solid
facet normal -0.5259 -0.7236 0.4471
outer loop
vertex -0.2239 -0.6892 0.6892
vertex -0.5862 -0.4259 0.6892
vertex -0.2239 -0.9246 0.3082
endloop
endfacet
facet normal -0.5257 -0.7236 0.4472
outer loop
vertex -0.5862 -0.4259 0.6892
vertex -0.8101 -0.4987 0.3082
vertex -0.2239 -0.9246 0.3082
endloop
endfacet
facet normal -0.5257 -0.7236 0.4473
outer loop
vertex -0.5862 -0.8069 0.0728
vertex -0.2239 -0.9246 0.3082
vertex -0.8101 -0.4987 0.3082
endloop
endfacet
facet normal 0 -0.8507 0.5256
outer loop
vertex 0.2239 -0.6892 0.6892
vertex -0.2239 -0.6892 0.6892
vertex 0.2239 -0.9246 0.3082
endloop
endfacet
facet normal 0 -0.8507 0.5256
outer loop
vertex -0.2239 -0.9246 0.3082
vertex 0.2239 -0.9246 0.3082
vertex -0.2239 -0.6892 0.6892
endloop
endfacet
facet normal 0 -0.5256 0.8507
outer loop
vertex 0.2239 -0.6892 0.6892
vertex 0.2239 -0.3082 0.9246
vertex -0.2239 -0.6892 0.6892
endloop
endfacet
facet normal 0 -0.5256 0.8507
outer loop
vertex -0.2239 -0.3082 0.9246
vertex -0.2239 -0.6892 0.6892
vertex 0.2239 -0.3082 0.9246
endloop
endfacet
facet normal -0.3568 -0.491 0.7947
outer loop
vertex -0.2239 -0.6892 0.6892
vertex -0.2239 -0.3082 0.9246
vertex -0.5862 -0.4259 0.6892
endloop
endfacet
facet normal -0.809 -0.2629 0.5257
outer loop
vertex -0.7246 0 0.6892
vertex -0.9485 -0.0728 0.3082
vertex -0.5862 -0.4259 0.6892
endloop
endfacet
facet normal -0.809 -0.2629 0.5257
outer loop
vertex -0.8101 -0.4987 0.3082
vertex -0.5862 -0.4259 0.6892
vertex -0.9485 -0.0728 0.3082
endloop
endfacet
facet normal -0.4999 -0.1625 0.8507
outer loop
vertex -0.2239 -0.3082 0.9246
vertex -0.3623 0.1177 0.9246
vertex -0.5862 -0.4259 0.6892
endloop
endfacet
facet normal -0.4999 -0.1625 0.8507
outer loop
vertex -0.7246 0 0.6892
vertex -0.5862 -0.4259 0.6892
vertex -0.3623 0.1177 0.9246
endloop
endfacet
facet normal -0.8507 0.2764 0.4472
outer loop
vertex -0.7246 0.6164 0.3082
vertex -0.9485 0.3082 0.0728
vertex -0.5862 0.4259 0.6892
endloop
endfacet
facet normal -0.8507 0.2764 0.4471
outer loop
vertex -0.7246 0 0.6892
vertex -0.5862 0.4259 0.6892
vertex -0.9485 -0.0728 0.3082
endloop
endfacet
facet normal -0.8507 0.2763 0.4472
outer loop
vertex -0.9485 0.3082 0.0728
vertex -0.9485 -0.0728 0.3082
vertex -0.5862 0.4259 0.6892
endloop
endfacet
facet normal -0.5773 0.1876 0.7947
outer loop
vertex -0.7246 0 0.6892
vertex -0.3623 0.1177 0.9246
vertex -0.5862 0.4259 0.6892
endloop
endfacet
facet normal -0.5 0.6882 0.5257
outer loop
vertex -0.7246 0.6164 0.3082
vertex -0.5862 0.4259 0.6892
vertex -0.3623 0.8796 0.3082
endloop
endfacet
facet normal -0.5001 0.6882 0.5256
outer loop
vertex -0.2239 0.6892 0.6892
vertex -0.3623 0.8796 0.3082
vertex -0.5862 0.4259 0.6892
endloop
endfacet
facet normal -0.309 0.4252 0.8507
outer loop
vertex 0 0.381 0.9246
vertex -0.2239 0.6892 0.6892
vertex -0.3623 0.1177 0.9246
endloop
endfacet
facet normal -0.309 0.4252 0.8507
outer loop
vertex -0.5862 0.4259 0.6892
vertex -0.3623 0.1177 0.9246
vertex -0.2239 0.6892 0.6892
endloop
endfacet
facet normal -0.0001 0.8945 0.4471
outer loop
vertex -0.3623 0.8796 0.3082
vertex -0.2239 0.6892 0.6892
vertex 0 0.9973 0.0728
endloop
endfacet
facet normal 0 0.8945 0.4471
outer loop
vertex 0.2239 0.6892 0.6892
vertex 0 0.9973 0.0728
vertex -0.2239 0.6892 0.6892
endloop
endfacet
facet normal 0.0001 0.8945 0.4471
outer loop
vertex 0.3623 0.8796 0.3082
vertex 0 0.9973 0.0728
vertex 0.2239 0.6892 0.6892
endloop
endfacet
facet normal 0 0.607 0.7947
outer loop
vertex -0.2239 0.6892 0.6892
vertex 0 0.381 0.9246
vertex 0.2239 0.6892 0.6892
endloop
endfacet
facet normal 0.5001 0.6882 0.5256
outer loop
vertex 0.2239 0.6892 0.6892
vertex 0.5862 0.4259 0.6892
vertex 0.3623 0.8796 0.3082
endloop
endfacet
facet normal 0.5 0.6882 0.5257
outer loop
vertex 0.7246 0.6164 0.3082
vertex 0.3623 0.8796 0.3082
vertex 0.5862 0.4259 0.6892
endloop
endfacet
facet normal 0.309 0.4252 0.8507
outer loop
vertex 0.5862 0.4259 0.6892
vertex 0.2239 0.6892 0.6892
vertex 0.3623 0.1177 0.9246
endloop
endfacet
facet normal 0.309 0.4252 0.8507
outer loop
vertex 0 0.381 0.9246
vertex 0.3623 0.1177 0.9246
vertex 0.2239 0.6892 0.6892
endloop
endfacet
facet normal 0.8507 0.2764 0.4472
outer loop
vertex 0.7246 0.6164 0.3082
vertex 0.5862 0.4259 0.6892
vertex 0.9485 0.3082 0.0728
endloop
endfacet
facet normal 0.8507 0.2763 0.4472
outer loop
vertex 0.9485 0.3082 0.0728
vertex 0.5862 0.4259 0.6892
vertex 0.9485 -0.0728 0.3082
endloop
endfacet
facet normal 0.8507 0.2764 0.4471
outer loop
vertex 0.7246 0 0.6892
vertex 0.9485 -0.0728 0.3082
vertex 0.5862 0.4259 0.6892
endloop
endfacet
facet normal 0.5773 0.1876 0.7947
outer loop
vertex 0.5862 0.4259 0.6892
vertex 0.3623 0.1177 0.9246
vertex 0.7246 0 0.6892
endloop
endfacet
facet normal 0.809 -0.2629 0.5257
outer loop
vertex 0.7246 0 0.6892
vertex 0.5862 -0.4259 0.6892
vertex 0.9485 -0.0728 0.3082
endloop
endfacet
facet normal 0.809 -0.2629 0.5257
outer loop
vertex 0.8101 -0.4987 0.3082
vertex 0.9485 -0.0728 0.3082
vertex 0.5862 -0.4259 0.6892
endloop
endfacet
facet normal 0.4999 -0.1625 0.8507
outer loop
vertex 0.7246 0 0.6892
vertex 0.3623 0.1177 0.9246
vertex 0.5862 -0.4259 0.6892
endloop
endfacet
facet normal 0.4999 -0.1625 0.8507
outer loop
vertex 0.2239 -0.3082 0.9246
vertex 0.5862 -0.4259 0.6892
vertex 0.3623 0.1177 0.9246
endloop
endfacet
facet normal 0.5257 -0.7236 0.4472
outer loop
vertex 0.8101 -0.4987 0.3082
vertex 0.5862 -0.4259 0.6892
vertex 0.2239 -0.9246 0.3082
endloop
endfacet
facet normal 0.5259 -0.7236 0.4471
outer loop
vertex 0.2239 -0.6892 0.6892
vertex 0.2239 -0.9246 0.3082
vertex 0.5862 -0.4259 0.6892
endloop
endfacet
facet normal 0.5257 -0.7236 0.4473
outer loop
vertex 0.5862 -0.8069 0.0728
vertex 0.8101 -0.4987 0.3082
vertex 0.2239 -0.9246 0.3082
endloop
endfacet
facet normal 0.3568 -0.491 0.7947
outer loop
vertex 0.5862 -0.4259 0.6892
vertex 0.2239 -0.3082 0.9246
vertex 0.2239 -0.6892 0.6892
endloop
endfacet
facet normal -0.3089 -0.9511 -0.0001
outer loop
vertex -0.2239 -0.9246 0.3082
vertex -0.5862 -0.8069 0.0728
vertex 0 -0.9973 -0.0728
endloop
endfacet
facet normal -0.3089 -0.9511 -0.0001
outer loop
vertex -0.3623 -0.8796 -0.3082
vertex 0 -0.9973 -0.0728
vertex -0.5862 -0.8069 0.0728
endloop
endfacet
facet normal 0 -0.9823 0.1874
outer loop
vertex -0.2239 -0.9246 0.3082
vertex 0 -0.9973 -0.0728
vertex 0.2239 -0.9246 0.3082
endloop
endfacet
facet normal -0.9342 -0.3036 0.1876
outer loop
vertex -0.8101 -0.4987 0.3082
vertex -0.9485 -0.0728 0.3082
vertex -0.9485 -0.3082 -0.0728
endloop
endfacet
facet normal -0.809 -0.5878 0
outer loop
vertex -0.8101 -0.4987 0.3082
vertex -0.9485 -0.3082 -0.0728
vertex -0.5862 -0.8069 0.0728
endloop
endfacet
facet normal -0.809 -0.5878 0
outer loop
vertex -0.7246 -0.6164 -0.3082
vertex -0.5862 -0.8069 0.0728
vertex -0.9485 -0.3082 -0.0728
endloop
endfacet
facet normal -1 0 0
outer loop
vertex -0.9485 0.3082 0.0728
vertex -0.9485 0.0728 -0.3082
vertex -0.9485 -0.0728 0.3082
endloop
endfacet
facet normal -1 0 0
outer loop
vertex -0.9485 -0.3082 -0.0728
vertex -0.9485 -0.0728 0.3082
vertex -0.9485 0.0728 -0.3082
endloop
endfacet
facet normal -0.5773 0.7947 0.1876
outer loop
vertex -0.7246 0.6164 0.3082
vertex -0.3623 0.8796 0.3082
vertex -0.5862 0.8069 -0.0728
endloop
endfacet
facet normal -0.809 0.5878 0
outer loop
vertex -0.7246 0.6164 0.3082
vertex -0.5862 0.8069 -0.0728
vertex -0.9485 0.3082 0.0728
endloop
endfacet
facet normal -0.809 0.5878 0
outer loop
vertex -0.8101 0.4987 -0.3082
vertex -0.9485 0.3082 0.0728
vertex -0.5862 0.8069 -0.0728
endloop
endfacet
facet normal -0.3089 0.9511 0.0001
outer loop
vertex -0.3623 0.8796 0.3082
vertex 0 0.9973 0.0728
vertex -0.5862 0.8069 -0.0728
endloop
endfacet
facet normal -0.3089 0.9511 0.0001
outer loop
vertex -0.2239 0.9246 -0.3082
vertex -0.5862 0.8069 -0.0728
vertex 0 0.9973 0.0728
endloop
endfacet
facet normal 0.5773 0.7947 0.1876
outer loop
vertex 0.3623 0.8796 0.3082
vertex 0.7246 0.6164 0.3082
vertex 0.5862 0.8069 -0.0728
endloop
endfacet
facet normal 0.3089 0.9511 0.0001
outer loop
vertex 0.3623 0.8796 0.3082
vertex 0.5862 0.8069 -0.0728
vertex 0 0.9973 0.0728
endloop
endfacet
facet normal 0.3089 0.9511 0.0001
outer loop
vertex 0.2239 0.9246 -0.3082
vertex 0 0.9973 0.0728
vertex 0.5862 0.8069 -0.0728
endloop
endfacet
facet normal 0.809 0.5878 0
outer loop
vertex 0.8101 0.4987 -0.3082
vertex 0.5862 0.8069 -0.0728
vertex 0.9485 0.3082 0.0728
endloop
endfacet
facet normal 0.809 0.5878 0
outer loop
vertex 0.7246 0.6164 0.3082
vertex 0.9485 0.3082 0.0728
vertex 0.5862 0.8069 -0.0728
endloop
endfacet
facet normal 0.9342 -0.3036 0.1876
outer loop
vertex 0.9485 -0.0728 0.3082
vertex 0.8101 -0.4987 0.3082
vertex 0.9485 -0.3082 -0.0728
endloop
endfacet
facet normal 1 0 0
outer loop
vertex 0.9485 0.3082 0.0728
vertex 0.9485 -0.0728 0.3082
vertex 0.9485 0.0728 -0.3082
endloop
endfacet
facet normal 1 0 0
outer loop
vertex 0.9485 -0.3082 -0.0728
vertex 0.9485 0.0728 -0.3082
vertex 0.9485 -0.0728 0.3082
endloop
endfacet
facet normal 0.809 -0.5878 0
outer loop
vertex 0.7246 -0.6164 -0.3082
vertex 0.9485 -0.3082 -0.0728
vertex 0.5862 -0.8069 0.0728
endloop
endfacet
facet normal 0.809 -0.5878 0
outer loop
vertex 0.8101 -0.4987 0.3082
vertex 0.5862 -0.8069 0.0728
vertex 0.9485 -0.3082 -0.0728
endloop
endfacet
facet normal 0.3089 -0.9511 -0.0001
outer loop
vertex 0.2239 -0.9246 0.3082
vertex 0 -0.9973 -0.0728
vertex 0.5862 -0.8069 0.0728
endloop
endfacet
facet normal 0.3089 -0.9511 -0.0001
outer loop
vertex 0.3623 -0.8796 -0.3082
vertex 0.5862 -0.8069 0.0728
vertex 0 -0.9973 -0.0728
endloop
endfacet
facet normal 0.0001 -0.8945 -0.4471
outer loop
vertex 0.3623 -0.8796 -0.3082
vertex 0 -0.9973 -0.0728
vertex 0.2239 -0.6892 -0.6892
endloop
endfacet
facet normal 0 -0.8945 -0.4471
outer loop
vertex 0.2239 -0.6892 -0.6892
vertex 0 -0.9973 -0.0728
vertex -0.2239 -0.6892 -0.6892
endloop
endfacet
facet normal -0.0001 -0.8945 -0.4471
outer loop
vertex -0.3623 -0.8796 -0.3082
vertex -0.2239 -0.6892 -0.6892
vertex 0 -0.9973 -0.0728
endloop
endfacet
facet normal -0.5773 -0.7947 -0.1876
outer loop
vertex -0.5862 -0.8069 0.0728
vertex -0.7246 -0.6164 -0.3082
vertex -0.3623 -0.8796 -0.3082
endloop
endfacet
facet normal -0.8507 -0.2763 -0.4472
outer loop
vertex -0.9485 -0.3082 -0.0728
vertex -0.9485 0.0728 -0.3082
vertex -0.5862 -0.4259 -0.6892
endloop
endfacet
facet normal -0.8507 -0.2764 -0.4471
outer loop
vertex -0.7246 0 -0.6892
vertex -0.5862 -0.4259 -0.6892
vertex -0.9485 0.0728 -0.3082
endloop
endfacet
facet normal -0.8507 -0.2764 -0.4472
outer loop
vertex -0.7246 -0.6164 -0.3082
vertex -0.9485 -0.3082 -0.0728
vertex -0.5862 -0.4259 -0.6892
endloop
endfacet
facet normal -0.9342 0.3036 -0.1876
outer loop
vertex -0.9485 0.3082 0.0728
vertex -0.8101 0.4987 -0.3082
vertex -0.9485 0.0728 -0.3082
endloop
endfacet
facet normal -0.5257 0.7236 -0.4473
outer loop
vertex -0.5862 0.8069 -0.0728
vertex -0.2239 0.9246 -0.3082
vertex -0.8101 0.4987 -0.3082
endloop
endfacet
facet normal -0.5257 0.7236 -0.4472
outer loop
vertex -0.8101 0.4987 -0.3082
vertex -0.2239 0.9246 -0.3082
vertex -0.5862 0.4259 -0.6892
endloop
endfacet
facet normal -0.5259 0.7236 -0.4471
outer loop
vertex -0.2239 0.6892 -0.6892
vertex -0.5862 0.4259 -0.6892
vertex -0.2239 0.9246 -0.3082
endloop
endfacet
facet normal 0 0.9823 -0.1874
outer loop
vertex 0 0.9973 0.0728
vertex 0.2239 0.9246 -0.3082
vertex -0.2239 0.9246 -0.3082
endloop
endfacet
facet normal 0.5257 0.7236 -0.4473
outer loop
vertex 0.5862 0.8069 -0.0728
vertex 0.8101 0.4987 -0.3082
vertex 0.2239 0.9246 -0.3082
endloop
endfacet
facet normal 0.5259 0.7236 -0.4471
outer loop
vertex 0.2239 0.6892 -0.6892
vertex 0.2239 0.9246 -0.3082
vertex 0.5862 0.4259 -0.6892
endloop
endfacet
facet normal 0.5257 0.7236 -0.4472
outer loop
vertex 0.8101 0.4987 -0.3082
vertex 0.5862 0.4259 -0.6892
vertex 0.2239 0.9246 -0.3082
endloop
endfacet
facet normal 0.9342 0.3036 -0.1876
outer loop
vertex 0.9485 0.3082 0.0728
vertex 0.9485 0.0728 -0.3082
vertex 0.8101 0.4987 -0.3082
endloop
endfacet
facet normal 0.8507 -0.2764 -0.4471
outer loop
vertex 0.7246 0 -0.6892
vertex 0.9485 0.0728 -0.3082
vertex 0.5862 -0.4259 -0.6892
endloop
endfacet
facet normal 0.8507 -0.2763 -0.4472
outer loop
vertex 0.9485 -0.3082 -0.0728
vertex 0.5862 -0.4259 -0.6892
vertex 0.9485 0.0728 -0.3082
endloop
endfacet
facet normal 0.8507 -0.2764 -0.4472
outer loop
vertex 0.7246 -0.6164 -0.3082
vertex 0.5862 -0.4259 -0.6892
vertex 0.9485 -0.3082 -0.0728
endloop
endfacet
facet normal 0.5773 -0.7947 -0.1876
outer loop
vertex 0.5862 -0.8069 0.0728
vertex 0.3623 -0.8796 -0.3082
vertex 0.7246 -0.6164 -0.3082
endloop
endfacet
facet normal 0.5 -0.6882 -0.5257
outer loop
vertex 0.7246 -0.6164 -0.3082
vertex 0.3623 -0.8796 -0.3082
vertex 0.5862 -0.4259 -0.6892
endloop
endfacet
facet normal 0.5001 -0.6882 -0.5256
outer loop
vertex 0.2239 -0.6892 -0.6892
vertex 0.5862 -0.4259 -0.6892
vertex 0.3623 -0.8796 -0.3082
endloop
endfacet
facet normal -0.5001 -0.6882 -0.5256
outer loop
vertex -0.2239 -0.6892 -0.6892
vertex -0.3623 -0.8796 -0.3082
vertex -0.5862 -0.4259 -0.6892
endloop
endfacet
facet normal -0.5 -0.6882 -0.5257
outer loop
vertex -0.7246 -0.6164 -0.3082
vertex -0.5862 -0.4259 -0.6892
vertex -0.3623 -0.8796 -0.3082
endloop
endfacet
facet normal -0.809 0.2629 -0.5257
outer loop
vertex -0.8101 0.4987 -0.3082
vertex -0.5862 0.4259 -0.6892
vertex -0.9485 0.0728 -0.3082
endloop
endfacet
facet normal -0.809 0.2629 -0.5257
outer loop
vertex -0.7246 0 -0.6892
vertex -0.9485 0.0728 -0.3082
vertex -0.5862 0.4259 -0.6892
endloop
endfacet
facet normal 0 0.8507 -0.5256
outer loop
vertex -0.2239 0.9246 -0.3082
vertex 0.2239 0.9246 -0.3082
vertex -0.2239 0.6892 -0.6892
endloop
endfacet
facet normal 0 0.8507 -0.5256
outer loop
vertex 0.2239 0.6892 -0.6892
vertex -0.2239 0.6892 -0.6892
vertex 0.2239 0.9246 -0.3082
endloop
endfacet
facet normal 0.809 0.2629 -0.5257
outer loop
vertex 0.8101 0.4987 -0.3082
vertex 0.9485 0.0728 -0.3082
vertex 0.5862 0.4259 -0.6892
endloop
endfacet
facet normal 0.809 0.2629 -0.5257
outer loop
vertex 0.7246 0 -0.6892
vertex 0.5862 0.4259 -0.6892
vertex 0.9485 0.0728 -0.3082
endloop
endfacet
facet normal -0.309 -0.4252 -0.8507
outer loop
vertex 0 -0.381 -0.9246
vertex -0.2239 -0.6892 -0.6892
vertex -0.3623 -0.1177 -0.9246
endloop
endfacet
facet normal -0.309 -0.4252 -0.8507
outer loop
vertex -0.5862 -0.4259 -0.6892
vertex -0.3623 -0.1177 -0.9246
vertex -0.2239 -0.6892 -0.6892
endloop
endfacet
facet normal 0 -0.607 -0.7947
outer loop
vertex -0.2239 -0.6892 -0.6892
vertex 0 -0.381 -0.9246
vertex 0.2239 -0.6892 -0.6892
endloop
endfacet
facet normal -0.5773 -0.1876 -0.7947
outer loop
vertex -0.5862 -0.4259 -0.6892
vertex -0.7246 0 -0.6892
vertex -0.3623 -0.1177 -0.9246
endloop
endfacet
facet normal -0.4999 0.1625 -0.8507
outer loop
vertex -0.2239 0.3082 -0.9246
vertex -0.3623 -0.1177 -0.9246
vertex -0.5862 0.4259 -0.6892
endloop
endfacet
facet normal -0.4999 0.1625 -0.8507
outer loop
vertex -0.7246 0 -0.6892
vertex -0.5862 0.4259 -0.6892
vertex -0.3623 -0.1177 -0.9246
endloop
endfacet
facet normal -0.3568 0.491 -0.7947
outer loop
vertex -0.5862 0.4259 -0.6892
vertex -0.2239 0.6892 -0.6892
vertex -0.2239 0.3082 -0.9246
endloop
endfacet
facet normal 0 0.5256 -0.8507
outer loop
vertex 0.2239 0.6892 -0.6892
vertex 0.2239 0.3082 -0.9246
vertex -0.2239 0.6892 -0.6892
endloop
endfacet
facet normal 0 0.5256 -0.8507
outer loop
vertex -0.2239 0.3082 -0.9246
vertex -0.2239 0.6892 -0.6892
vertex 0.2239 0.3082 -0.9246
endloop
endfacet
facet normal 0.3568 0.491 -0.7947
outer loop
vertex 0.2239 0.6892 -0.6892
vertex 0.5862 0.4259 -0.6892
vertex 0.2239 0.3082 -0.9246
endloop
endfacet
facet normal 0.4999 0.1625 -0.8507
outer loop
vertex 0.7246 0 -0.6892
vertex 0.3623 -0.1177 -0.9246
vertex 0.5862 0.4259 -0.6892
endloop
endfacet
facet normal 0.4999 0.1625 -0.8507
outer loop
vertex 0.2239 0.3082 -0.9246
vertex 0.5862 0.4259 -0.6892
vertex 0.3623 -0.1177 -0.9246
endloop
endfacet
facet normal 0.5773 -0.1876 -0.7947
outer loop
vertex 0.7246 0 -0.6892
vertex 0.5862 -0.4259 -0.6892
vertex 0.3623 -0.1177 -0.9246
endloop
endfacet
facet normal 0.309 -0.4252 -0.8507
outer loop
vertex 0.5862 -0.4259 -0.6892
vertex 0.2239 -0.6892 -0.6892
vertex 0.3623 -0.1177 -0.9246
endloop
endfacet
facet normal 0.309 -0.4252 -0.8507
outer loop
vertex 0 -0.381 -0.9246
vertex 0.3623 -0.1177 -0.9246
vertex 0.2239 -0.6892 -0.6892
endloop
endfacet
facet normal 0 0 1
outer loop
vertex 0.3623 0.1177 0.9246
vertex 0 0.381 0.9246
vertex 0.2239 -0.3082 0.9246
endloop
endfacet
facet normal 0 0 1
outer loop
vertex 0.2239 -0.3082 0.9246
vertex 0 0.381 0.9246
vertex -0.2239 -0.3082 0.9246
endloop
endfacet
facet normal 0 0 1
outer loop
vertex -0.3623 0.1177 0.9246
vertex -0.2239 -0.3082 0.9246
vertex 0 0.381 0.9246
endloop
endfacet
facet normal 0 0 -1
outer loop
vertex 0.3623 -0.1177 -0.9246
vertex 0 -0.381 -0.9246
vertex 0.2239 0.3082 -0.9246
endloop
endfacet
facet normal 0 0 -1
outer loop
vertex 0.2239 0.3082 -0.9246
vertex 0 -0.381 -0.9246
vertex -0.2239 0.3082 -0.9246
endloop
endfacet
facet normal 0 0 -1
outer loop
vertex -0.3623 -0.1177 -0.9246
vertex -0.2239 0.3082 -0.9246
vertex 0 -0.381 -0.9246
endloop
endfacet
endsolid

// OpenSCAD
polyhedron( points = [[-0.223918980502791, -0.689151753958798, 0.68915175320327], [-0.586227498357589, -0.425919207438933, 0.68915175320327], [-0.724617037672315, -3.64540683857599e-10, 0.68915175320327], [-0.58622749824286, 0.425919206672572, 0.68915175320327], [-0.223918980440918, 0.689151753054625, 0.68915175320327], [0.223918976354414, 0.689151753014409, 0.68915175320327], [0.586227494109089, 0.425919206567294, 0.68915175320327], [0.724617033462055, -4.94673439359701e-10, 0.68915175320327], [0.586227494070848, -0.425919207544214, 0.68915175320327], [0.223918976292546, -0.689151753958798, 0.68915175320327], [-0.223918980482685, -0.924594101255569, 0.308198033265152], [-0.810146476740971, -0.498674894078937, 0.308198033256323], [-0.948536016016305, -0.0727556867744242, 0.308198033206956], [-0.724617037511975, 0.616396066678589, 0.308198033241611], [-0.362308519776772, 0.879628612987802, 0.308198033206956], [0.362308515781865, 0.879628612905404, 0.308198033241612], [0.724617033446636, 0.616396066499252, 0.308198033206956], [0.948536011794241, -0.0727556870046846, 0.308198033241611], [0.810146472414207, -0.498674893956068, 0.308198033206956], [0.223918976243041, -0.924594101240114, 0.30819803329016], [-2.21630357928472e-09, -0.997349787107347, -0.0727556868501334], [-0.586227498388802, -0.806872927681016, 0.0727556862493445], [-0.94853601526516, -0.308198033304917, -0.072755687123301], [-0.948536015920481, 0.308198033213051, 0.0727556861094712], [-0.586227498633875, 0.80687292693712, -0.0727556865199559], [-1.95041993189696e-09, 0.997349786456163, 0.0727556861094712], [0.58622749429384, 0.806872927031421, -0.0727556865199559], [0.948536011805844, 0.30819803291879, 0.0727556861094712], [0.948536012377998, -0.308198034013122, -0.0727556865199559], [0.586227493955297, -0.806872927464095, 0.0727556861094712], [0.3623085154023, -0.879628612869235, -0.308198033869746], [-0.362308520108845, -0.879628613537205, -0.308198033681712], [-0.724617036970593, -0.616396066827713, -0.308198033838912], [-0.948536013063557, 0.0727556868402732, -0.308198033566354], [-0.810146477045474, 0.498674893467323, -0.308198033798163], [-0.223918981279637, 0.924594101345345, -0.308198033897937], [0.223918976556551, 0.924594100583806, -0.308198033798163], [0.810146473401032, 0.498674894190407, -0.308198033897937], [0.948536012389601, 0.0727556859156177, -0.308198033798163], [0.724617034853475, -0.616396068004015, -0.308198033897937], [-0.223918981000237, -0.689151752872079, -0.689151753364564], [-0.586227495414297, -0.42591920679454, -0.68915175294433], [-0.724617029485796, 1.00239002604627e-10, -0.689151752416553], [-0.586227484889614, 0.425919207248854, -0.689151751982827], [-0.223918963970945, 0.689151753990929, -0.689151751808819], [0.22391899270063, 0.68915175442174, -0.689151751960995], [0.586227507138325, 0.425919208376739, -0.689151752381228], [0.724617041248072, 1.49437649710687e-09, -0.689151752909005], [0.586227496690131, -0.425919205666662, -0.689151753342732], [0.2239189757951, -0.689151752441267, -0.689151753516739], [-0.223918980084542, -0.308198033775467, 0.924594099939947], [0.223918976272434, -0.308198033943282, 0.924594100186472], [0.362308515632435, 0.117721173054366, 0.924594100186472], [-2.08253124512257e-09, 0.38095371945577, 0.924594100186473], [-0.362308519441588, 0.117721173127757, 0.92459409988238], [8.65388999313108e-10, -0.380953718487133, -0.924594099745564], [-0.362308513292668, -0.117721172803022, -0.924594099571856], [-0.223918968701737, 0.308198034285269, -0.92459409913813], [0.223918987910841, 0.308198034702435, -0.924594099290305], [0.362308521694052, -0.117721171875881, -0.924594099513987]], faces = [[0, 1, 11, 21, 10], [0, 10, 19, 9], [0, 9, 51, 50], [0, 50, 1], [1, 2, 12, 11], [1, 50, 54, 2], [2, 3, 13, 23, 12], [2, 54, 3], [3, 4, 14, 13], [3, 54, 53, 4], [4, 5, 15, 25, 14], [4, 53, 5], [5, 6, 16, 15], [5, 53, 52, 6], [6, 7, 17, 27, 16], [6, 52, 7], [7, 8, 18, 17], [7, 52, 51, 8], [8, 9, 19, 29, 18], [8, 51, 9], [10, 21, 31, 20], [10, 20, 19], [11, 12, 22], [11, 22, 32, 21], [12, 23, 33, 22], [13, 14, 24], [13, 24, 34, 23], [14, 25, 35, 24], [15, 16, 26], [15, 26, 36, 25], [16, 27, 37, 26], [17, 18, 28], [17, 28, 38, 27], [18, 29, 39, 28], [19, 20, 30, 29], [20, 31, 40, 49, 30], [21, 32, 31], [22, 33, 42, 41, 32], [23, 34, 33], [24, 35, 44, 43, 34], [25, 36, 35], [26, 37, 46, 45, 36], [27, 38, 37], [28, 39, 48, 47, 38], [29, 30, 39], [30, 49, 48, 39], [31, 32, 41, 40], [33, 34, 43, 42], [35, 36, 45, 44], [37, 38, 47, 46], [40, 41, 56, 55], [40, 55, 49], [41, 42, 56], [42, 43, 57, 56], [43, 44, 57], [44, 45, 58, 57], [45, 46, 58], [46, 47, 59, 58], [47, 48, 59], [48, 49, 55, 59], [50, 51, 52, 53, 54], [55, 56, 57, 58, 59]]);
